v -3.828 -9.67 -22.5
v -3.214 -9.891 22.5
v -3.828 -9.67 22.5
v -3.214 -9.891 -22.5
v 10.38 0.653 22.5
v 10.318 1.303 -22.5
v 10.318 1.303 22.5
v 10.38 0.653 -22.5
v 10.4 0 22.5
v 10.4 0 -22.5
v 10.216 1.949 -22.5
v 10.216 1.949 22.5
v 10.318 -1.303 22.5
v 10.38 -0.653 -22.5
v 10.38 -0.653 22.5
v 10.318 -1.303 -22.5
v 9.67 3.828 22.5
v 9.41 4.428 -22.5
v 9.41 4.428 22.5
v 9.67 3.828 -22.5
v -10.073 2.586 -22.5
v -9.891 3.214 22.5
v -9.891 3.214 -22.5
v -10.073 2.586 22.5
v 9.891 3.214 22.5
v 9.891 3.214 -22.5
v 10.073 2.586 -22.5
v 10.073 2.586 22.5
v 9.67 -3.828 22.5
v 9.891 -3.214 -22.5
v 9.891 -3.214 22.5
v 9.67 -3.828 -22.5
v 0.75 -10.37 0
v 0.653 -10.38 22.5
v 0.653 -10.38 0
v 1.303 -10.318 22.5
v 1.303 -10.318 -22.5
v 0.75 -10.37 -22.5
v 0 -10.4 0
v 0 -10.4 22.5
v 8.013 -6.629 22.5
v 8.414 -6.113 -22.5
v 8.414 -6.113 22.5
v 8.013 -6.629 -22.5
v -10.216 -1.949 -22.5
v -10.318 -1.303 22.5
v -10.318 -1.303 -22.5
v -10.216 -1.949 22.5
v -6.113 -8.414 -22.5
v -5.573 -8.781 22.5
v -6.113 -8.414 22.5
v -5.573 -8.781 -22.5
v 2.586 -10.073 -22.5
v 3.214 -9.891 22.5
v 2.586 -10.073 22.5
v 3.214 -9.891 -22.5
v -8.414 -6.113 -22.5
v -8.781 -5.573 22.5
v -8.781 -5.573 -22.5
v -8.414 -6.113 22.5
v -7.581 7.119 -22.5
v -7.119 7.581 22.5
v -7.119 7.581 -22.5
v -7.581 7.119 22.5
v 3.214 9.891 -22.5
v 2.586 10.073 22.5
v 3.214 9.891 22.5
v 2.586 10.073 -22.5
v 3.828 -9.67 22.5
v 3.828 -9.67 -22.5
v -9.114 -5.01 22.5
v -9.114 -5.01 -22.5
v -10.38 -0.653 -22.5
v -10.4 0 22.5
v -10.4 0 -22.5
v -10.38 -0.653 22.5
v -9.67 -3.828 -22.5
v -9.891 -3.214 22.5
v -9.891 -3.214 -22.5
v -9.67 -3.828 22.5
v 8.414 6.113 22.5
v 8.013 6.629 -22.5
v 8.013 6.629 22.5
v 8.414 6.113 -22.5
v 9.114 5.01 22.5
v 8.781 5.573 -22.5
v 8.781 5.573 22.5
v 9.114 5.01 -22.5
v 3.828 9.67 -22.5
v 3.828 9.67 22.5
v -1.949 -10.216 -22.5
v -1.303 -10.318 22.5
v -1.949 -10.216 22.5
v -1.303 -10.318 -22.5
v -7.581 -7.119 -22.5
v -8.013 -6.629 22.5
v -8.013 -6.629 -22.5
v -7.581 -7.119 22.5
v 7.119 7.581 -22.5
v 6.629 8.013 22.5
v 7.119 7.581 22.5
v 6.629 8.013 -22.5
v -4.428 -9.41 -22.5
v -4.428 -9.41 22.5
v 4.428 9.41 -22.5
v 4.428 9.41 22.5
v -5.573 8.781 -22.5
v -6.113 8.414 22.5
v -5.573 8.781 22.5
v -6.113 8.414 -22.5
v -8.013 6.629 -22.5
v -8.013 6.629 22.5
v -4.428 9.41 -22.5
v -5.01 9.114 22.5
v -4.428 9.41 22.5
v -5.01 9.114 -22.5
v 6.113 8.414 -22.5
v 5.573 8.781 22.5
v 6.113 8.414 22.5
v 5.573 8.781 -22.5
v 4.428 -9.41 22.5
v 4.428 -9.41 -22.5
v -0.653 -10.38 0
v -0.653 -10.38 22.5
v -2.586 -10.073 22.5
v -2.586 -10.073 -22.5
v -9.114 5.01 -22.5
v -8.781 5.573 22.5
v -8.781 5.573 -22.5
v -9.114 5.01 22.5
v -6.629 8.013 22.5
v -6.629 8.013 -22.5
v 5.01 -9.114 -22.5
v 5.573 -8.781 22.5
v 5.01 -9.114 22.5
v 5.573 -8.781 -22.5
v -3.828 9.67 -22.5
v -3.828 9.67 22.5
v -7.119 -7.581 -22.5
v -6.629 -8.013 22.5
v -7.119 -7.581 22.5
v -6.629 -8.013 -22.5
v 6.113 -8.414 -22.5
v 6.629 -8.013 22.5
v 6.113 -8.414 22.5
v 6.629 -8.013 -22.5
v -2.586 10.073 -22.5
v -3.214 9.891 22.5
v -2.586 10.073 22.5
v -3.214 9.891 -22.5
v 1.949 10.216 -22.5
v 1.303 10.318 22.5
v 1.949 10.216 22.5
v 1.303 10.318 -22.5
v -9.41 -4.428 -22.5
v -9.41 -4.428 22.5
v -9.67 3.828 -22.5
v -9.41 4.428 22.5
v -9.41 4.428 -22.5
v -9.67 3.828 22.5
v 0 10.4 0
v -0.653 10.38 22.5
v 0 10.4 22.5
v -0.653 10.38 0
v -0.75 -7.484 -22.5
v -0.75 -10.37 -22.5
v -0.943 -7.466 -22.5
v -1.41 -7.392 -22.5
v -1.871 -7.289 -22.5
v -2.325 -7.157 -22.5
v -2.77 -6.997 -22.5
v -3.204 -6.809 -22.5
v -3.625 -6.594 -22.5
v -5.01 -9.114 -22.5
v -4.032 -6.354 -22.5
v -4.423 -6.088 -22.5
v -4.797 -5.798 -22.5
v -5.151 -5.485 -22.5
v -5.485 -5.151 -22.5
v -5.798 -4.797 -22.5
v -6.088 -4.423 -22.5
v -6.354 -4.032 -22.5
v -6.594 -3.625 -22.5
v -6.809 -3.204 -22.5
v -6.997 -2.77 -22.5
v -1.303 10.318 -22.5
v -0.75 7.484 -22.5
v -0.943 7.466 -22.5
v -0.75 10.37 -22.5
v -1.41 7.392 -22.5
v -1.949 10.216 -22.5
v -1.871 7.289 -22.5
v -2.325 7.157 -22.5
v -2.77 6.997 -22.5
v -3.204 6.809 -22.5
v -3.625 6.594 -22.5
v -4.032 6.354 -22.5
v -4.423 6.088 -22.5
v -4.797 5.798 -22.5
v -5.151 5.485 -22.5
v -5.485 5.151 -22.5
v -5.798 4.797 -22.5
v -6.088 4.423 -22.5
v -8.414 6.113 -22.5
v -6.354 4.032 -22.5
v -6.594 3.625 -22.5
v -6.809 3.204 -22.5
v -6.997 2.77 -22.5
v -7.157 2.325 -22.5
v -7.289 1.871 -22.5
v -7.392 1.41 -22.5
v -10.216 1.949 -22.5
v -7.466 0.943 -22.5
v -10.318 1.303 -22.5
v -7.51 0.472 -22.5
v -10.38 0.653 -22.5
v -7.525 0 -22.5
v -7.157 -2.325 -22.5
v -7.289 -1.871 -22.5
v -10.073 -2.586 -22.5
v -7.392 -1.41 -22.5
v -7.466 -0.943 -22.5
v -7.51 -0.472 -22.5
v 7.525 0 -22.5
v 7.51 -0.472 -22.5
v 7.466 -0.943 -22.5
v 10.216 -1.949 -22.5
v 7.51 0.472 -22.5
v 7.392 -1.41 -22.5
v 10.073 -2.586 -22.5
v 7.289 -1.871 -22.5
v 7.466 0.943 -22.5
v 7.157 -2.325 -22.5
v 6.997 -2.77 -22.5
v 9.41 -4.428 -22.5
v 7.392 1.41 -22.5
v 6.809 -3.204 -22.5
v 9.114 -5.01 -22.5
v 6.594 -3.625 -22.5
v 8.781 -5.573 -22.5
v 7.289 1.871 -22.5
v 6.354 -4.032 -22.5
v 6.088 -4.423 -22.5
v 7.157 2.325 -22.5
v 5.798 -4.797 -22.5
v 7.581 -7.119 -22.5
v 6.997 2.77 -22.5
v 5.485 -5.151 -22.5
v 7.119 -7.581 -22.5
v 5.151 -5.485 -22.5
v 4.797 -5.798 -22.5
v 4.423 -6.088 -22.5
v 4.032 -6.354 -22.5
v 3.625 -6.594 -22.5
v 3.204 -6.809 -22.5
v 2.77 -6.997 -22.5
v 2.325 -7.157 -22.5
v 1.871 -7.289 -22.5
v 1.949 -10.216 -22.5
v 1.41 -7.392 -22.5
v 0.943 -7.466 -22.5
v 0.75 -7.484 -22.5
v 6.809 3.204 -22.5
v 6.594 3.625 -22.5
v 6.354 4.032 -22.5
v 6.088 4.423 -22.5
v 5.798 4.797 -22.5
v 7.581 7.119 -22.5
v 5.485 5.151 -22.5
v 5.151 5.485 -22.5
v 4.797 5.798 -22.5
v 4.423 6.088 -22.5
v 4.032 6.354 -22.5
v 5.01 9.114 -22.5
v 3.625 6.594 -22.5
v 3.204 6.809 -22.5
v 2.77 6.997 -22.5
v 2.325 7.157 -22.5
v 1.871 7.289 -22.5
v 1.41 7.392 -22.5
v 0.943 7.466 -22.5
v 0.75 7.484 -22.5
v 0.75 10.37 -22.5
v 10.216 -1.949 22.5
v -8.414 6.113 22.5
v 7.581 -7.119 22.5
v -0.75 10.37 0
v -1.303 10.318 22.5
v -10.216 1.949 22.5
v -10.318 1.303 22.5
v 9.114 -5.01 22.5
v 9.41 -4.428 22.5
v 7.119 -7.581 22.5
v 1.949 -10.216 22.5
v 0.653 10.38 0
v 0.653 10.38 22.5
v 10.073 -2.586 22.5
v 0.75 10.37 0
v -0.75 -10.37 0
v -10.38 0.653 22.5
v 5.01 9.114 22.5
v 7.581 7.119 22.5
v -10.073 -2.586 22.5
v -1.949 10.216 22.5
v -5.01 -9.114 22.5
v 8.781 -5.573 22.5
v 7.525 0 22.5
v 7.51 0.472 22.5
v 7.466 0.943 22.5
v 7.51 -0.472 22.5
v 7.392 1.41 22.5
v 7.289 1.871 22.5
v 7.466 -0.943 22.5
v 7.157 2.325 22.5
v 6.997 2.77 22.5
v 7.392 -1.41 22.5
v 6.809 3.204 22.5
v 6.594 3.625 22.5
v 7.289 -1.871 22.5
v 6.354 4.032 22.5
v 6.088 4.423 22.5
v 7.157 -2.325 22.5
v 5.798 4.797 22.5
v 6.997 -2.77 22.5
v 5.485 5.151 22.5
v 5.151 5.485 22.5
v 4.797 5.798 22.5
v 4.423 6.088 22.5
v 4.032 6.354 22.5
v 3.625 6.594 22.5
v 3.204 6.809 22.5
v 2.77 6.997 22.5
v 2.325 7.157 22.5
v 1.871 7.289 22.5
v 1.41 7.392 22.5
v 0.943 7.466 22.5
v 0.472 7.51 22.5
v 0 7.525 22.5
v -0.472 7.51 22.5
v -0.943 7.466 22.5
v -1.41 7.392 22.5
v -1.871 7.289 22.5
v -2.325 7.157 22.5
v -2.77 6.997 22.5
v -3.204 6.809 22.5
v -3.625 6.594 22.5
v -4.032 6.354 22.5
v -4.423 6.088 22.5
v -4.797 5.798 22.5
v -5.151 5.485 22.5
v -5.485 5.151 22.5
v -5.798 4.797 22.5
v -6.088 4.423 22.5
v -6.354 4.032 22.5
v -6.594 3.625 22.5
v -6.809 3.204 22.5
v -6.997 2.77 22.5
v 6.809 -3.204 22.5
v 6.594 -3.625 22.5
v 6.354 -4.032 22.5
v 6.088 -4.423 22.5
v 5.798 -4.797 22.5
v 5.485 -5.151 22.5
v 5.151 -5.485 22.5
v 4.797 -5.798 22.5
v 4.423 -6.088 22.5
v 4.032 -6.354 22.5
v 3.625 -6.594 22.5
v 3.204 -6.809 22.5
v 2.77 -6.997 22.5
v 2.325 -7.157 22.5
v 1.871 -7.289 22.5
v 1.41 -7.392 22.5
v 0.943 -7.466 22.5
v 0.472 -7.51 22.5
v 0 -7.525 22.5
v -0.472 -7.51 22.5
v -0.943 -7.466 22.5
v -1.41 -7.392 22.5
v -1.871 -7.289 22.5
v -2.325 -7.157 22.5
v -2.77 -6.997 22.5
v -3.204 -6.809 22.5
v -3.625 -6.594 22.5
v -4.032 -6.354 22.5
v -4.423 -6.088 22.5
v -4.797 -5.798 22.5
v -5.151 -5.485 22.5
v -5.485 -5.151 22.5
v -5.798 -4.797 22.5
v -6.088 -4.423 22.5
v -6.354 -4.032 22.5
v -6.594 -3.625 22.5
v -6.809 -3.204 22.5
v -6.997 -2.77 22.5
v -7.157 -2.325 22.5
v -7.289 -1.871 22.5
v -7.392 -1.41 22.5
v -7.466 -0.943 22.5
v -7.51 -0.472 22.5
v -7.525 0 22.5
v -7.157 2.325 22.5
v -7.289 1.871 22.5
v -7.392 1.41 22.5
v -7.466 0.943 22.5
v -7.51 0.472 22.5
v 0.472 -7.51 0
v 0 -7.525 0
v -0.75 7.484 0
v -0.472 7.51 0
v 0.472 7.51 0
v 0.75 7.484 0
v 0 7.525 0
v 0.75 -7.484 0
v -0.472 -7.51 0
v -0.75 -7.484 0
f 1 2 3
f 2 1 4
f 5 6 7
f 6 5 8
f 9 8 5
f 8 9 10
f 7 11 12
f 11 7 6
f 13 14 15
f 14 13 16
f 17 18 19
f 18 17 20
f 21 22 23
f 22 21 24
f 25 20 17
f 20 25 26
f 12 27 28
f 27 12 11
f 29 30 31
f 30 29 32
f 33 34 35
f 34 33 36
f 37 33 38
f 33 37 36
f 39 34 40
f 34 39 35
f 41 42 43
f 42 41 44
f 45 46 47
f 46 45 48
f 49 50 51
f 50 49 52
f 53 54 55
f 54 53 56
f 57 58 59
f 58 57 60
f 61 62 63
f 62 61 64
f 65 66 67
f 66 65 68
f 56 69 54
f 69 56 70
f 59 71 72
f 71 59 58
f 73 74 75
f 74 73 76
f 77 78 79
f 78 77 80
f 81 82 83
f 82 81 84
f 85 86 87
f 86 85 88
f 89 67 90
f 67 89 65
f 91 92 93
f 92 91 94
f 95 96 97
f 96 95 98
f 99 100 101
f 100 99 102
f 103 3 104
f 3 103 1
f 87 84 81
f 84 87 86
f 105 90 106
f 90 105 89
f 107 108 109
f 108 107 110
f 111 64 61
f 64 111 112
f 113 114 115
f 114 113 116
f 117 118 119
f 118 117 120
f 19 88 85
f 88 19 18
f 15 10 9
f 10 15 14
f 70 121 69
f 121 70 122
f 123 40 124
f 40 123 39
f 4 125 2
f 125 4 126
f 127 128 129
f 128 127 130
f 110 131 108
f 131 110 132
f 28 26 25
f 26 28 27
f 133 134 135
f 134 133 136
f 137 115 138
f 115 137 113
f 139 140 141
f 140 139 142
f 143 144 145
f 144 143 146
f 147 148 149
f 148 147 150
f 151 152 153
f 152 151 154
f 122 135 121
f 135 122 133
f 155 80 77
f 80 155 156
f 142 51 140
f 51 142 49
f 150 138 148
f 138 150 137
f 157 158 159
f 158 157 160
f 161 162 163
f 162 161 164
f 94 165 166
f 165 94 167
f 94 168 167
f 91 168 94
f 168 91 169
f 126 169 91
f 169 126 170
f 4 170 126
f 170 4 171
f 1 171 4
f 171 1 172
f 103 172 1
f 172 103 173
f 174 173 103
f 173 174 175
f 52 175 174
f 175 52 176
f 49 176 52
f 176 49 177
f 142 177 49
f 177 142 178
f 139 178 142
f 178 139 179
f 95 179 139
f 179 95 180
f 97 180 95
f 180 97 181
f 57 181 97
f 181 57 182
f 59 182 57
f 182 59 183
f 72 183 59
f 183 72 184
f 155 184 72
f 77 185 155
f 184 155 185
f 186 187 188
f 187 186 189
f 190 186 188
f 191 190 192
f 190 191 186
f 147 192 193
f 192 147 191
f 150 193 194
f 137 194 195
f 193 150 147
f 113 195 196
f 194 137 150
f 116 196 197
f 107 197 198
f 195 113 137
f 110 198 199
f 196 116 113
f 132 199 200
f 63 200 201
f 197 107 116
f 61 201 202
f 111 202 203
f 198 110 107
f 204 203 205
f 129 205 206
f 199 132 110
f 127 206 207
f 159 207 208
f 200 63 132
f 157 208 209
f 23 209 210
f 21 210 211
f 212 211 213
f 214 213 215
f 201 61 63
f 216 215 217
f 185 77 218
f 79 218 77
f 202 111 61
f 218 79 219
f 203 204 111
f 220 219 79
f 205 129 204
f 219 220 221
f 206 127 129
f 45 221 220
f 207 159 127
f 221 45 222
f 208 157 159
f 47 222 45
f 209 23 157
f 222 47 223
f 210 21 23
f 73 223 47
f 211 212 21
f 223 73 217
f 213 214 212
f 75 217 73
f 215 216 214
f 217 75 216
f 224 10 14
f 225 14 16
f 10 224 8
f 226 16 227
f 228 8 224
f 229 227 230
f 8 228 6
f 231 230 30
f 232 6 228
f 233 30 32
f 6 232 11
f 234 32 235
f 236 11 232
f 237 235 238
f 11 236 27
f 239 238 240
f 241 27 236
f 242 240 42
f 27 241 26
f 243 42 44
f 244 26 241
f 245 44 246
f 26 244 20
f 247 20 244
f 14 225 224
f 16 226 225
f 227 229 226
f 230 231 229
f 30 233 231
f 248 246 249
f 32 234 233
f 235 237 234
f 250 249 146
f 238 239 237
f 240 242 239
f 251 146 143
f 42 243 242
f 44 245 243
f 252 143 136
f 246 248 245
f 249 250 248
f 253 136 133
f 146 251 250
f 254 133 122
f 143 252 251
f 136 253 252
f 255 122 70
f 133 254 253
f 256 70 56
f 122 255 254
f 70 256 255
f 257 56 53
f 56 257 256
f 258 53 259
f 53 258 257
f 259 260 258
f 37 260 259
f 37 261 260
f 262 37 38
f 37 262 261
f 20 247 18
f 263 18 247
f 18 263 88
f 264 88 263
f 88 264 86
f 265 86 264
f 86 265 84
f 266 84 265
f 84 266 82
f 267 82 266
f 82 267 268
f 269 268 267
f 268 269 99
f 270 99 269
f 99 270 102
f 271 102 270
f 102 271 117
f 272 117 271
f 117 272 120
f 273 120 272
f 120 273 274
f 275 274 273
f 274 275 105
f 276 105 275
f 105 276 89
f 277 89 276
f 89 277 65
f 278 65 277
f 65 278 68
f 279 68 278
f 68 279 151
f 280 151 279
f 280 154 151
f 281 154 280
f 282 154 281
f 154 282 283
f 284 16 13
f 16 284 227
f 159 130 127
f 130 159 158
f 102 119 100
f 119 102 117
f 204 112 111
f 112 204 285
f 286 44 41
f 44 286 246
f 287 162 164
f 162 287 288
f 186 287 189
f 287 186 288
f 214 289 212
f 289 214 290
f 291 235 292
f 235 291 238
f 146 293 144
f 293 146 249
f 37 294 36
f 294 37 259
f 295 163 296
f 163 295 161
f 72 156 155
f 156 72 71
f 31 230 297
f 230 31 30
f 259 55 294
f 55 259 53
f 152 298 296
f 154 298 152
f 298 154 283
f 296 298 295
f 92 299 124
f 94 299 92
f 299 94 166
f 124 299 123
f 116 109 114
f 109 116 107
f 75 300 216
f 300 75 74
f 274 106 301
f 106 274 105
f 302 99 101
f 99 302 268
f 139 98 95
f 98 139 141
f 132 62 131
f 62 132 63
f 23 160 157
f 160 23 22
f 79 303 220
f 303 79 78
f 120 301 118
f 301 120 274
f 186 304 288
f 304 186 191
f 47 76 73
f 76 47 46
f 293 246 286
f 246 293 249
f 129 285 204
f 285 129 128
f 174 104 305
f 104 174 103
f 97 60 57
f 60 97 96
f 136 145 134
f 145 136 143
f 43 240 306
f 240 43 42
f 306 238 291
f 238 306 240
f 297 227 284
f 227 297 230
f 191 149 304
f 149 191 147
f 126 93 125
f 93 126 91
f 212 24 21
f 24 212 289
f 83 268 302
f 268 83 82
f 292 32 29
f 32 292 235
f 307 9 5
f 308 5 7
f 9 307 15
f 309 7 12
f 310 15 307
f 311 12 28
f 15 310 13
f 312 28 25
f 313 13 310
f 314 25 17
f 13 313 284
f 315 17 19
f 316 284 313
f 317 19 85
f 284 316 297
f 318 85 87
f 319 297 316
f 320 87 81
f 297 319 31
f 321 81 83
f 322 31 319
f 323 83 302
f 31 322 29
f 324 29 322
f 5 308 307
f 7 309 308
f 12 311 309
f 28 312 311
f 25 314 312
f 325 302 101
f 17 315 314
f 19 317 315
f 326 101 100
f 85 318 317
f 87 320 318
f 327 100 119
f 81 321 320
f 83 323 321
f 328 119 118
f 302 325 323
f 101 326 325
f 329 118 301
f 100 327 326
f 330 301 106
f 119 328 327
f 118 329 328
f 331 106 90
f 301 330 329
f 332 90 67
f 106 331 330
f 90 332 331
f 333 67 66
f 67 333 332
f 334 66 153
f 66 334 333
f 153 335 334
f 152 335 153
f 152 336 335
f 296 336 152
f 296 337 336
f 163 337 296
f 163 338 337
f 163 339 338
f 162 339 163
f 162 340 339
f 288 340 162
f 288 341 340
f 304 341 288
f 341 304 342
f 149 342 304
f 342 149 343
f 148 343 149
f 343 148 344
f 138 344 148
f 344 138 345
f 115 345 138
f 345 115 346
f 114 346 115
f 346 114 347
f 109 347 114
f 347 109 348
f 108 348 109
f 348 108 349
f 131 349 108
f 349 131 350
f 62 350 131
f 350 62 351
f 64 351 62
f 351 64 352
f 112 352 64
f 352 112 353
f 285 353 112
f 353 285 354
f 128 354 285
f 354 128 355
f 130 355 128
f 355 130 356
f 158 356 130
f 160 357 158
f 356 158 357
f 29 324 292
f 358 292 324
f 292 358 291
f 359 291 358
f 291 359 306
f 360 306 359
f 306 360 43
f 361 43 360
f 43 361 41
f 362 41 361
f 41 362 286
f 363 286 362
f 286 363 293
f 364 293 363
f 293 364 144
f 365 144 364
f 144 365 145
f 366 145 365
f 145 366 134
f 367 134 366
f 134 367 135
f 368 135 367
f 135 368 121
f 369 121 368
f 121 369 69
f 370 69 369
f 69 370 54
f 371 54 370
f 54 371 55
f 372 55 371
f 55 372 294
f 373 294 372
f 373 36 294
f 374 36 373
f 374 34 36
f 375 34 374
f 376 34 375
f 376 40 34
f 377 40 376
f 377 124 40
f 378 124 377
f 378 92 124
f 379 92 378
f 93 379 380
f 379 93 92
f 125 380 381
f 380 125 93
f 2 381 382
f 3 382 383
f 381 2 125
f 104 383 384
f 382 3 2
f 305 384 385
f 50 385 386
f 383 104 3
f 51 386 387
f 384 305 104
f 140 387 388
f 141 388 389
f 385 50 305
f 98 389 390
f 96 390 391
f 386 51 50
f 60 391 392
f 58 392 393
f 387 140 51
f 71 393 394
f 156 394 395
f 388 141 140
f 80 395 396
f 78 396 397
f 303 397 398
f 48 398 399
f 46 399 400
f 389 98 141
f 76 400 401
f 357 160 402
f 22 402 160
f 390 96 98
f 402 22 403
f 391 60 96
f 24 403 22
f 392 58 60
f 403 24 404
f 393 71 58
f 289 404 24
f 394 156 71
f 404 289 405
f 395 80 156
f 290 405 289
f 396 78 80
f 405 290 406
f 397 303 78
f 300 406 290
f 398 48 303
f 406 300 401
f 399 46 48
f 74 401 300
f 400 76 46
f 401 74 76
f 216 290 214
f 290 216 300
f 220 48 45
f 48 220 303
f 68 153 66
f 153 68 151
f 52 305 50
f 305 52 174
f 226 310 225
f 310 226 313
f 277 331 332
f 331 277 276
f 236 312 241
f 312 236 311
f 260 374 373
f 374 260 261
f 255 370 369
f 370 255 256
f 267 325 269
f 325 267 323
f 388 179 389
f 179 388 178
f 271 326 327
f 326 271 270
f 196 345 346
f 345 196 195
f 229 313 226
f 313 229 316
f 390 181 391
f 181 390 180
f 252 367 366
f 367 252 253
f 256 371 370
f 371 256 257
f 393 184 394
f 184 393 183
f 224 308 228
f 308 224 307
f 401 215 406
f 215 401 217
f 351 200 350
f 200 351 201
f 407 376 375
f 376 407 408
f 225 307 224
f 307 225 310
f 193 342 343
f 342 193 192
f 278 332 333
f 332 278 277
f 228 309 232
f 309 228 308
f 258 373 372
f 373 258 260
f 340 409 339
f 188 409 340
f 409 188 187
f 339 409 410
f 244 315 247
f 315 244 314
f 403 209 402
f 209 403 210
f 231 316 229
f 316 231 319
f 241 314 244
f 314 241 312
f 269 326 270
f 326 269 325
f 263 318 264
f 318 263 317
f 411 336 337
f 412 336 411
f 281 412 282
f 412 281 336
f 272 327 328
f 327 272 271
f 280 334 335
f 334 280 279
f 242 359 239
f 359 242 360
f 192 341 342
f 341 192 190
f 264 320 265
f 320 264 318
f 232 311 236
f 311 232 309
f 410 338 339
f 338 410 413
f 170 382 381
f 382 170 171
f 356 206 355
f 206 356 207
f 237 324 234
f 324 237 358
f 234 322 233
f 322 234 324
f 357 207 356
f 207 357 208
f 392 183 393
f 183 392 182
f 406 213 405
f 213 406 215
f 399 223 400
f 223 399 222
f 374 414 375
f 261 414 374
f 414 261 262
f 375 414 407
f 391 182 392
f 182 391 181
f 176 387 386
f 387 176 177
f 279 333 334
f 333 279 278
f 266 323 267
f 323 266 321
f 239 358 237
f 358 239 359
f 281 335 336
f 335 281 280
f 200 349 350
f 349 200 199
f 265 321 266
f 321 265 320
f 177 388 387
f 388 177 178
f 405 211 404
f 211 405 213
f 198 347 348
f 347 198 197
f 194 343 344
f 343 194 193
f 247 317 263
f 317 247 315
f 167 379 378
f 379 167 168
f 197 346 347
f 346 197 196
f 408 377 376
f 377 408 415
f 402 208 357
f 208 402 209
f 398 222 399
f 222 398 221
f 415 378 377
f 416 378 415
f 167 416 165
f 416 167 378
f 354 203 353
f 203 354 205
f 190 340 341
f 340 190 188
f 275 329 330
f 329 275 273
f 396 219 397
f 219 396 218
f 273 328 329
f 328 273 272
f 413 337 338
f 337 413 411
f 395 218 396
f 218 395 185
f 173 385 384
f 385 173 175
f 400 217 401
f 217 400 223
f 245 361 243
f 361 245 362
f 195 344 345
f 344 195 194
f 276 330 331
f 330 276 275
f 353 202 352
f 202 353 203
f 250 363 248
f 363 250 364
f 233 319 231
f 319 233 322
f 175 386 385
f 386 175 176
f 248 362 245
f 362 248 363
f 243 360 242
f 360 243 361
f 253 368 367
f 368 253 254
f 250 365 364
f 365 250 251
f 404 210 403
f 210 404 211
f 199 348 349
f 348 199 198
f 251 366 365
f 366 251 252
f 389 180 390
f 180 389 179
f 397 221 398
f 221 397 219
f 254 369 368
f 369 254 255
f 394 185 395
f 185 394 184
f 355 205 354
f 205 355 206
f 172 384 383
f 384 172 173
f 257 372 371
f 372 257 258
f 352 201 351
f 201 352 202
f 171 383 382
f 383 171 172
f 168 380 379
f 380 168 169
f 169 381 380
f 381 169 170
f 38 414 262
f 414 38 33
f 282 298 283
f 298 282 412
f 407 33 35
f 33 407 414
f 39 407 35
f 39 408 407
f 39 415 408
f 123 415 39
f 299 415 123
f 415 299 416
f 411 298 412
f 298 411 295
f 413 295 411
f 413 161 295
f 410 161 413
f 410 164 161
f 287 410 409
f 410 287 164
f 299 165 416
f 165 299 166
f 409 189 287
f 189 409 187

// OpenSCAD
// file: ../shared_helper.scad
// Shared Helper variables and modules

// Variables
quality_value = 100;
$fn = quality_value;

// Screw Holes
m2_hole_diameter = 1.85; // 1.95;
m2_loose_diameter = 2.50;
m2_counter_sink_diameter = 3.80;
m2_counter_sink_length = 2.00;
m2_hole_offset = m2_hole_diameter / 2.0;
m2_hole_height = 100.00;
m2_nut_outer_width = 3.90;
m2_nut_outer_height = 4.40;
m2_nut_outer_depth = 1.50;
// M2_Counter_Sink_Depth

m3_hole_diameter = 2.9; // 2.8
m3_hole_offset = m3_hole_diameter / 2.0;
m3_hole_height = 100.00;
m3_head_diameter = 6.2;
m3_head_depth = 3.0; // 2.5??, 3.0

m4_hole_diameter = 3.85; // 3.90
m4_hole_offset = m4_hole_diameter / 2.0;
m4_hole_height = 100.00;
m4_head_diameter = 7.55;
m4_head_depth = 3.0; // 2.5??, 3.0

// Tolerances
hole_tight_tolerance = 0.05;
hole_loose_tolerance = 0.20;

// Springs
spring_diameter = 5.45;
spring_length = 35.00;

// Nails
brass_nail_diameter = 2.4; // 2.00; // 1.95 at the beginning it tapers
brass_nail_length = 29.54;
brass_nail_head_diameter = 3.20; // 3.00; // oval 2.84 - 3.1 mm
brass_nail_head_depth = 1.80; //1.00; // 1.80; // 2.00;

// General Variables
v_wheel_hole_diameter = 5.20;
v_wheel_offset = (v_wheel_hole_diameter / 2.0) + 2.0;

// Hot-End Holes
stand_off_hole_diameter = m3_hole_diameter;
stand_off_width_distance = 11.60 + stand_off_hole_diameter;

// Magnets
// Small Magnet (Neo)
small_magnet_height = 2.00; // ±2.00 1.97
small_magnet_diameter = 3.00; // ±3.00 // 2.98

// Medium Magnet (Neo)
medium_magnet_height = 2.96; // ±3.00
medium_magnet_diameter = 5.00;

// Large Magnet (ferrite)
large_magnet_height = 2.98; // ±3.00
large_magnet_diameter = 9.79; // ±10.00

// Switches
// D2F Switch
d2f_length = 12.88; // ±12.70
d2f_width = 5.84; // ±5.70
d2f_depth = 6.20; // ±7.00 (5 + 2) ... ±6.50
d2f_pins = 9.00 - 6.50;
d2f_plunger_length = 2.64;
d2f_plunger_width = 0.97; // ±1.00
d2f_plunger_depth = 0.39; // ±0.50
d2f_mount_hole_position = 2.10;
d2f_hole_position_from_centre = 2.85;
d2f_pin_pre_travel = 0.50;
d2f_mount_hole_shift = 4.40 + m2_hole_offset + m2_hole_offset;
d2f_switch_base = 0.2 + 0.7 + 1.50 + 0.55 - 1.0;
d2f_switch_hole_hight = 22.00;
d2f_extra_tolerance_for_switch_holes = 0.12;

// 10t85 Switch
10t85_length = 20.04; // ±19.90
10t85_width = 6.34; // ±6.40
10t85_depth = 10.64; // ±10.70
10t85_plunger_length = 3.28; // ±4.00
10t85_plunger_width = 1.96;
10t85_plunger_depth = 1.30;

// Creality Endstop Board, 2208 V2.0
// creality_endstop_hole_diameter = m3_hole_diameter + hole_loose_tolerance; // Hole is M3 sized but meant for a loose M2
creality_endstop_hole_diameter = m2_hole_diameter + hole_tight_tolerance;
creality_endstop_hole_offset = 15.00;
creality_endstop_board_height = 20.30;
creality_endstop_plug_height_extension = 2.00;
creality_endstop_board_width = 20.20;
creality_endstop_board_thickness = 1.30;
creality_endstop_board_pins_thickness = 3.20 - creality_endstop_board_thickness;
creality_endstop_board_switch_thickness = 8.50 - creality_endstop_board_thickness;
creality_endstop_board_back_space = 2.00; // Taken from the rail mount bracket
creality_endstop_board_back_height = 14.90;
creality_endstop_board_back_width = 16.80;
creality_endstop_back_thickness = 3.30;
creality_endstop_back_hole_wall_spacing = 1.50; //3.00;

// Small Tactile Switch
small_tactile_switch_length = 6.21;
small_tactile_switch_width = 6.17;
small_tactile_switch_depth = 3.18;
small_tactile_switch_plunger_diameter = 3.40;
small_tactile_switch_plunger_depth = 1.40;

// Large Tactile Switch
large_tactile_switch_length = 12.03;
large_tactile_switch_width = 11.95;
large_tactile_switch_depth = 3.12;
large_tactile_switch_plunger_length = 3.75;
large_tactile_switch_plunger_width = 3.70;
large_tactile_switch_plunger_depth = 3.94;

// Button
button_topper_top_diameter = 11.65;
button_topper_bottom_diameter = 12.96;
button_topper_depth = 5.64;
button_topper_bottom_depth = 4.38;

// Belts
// GT2

// Modules
// Creality Mounting Holes
module CrealityCounterSunkHotEndMountingHoles(total_casing_depth, casing_top_extension) {
  // Mounting holes with countersinking - horizontal, through-holes, properly positioned
  cylinder(d=m3_hole_diameter, h=total_casing_depth + 2.00, center=true);
  cylinder(d=m3_hole_diameter, h=total_casing_depth + 2.00, center=true);

  translate([stand_off_width_distance, 0, 0]) {
    cylinder(d=m3_hole_diameter, h=total_casing_depth + 2.00, center=true);
    cylinder(d=m3_head_diameter + hole_loose_tolerance, h=4 + m3_head_depth + 6 + 1.8 + casing_top_extension);
  }
}

module CrealityHotEndMountingHoles(total_casing_depth) {
  cylinder(d=m3_hole_diameter, h=total_casing_depth + 2.00, center=true);

  translate([stand_off_width_distance, 0, 0]) {
    cylinder(d=m3_hole_diameter, h=total_casing_depth + 2.00, center=true);
  }
}

module CrealityEndstopMountHoles(height, include_back_nut_cutout) {
  cylinder(d=creality_endstop_hole_diameter, h=height, center=true);

  translate([creality_endstop_hole_offset, 0, 0]) {
    cylinder(d=creality_endstop_hole_diameter, h=height, center=true);
  }

  if (include_back_nut_cutout) {
    back_depth = m2_nut_outer_depth;

    translate([-2.0, -2.0, 0]) {
      cube([m2_nut_outer_width, m2_nut_outer_height, back_depth]);

      translate([creality_endstop_hole_offset, 0, 0]) {
        cube([m2_nut_outer_width, m2_nut_outer_height, back_depth]);
      }
    }
  }
}

module CrealityEndstopBackSpace(base_cutout_extension) {
  // Smaller gap between screw holes
  translate([creality_endstop_hole_diameter + creality_endstop_back_hole_wall_spacing, 0.0, 0.0]) {
    cube([creality_endstop_board_back_width - 2 * (creality_endstop_hole_diameter + creality_endstop_back_hole_wall_spacing), base_cutout_extension, creality_endstop_back_thickness + 1.0]);
  }

  // Top gap part
  translate([0.0, base_cutout_extension, 0]) {
    cube([creality_endstop_board_back_width, (creality_endstop_board_back_height + base_cutout_extension), creality_endstop_back_thickness + 1.0]);
  }
}

// D2F Switch Mounting
module D2F_Switch_Space() { // Should be used as a negative / difference space
  // D2F Switch Space
  // switch_base = 0.2 + 0.7 + 1.50 + 0.55;
  // switch_base = 0.2 + 0.7 + 1.50 + 0.55 - 1.0;
  switch_base = d2f_switch_base;

  // cube([d2f_depth, d2f_width + 1.05 + 0.75 - 0.95, d2f_length + casing_top_edge_buffer]); // 1.05
  cube([d2f_length, (d2f_width + 2.00) + d2f_pins, d2f_depth]);
}

module D2F_Switch_Mount_Holes() {
  rotate([0, 0, 90]) {
    translate([0.0, d2f_hole_position_from_centre, 0.0]) {
      cylinder(d=m2_hole_diameter + hole_tight_tolerance + (d2f_extra_tolerance_for_switch_holes * 3), h=d2f_switch_hole_hight);
    }

    translate([0.0, -(d2f_hole_position_from_centre + m2_hole_offset), 0.0]) {
      cylinder(d=m2_hole_diameter + hole_tight_tolerance + (d2f_extra_tolerance_for_switch_holes * 3), h=d2f_switch_hole_hight);
    }
  }
}
// main file
// LM8LUU to LM12UU Linear Bearing Adapter Sleeve
// This sleeve converts an LM8LUU linear bearing to fit in a 12mm bearing mount
// Uses shared_helper.scad for tolerances and quality settings

include <../shared_helper.scad>;

// Linear bearing dimensions
lm8luu_outer_diameter = 15.0;  // Standard outer diameter of LM8LUU bearing
lm12uu_outer_diameter = 21.0;  // Standard outer diameter of LM12UU bearing
lm8luu_length = 45.0;          // Standard length of LM8LUU bearing
lm12uu_length = 30.0;          // Standard length of LM12UU bearing

// Use the longer of the two bearings for the sleeve length
sleeve_length = lm8luu_length;

// Tolerances
inner_tolerance = hole_tight_tolerance;  // Tight fit for the LM8LUU bearing
outer_tolerance = hole_loose_tolerance;  // Slightly looser fit for mounting in LM12UU housing

// Gap parameters for installation
gap_width = 1.5;  // Width of the gap to allow squeezing

// Create the sleeve
difference() {
  // Outer cylinder - matches LM12UU outer diameter
  cylinder(d=lm12uu_outer_diameter - outer_tolerance, h=sleeve_length, center=true);

  // Inner hole - matches LM8LUU outer diameter
  cylinder(d=lm8luu_outer_diameter + inner_tolerance, h=sleeve_length + 1, center=true);

  // Gap to allow squeezing for installation
  translate([0, 0, -sleeve_length/2 - 0.5])
  cube([gap_width, lm12uu_outer_diameter + 1, sleeve_length + 1], center=true);
}
